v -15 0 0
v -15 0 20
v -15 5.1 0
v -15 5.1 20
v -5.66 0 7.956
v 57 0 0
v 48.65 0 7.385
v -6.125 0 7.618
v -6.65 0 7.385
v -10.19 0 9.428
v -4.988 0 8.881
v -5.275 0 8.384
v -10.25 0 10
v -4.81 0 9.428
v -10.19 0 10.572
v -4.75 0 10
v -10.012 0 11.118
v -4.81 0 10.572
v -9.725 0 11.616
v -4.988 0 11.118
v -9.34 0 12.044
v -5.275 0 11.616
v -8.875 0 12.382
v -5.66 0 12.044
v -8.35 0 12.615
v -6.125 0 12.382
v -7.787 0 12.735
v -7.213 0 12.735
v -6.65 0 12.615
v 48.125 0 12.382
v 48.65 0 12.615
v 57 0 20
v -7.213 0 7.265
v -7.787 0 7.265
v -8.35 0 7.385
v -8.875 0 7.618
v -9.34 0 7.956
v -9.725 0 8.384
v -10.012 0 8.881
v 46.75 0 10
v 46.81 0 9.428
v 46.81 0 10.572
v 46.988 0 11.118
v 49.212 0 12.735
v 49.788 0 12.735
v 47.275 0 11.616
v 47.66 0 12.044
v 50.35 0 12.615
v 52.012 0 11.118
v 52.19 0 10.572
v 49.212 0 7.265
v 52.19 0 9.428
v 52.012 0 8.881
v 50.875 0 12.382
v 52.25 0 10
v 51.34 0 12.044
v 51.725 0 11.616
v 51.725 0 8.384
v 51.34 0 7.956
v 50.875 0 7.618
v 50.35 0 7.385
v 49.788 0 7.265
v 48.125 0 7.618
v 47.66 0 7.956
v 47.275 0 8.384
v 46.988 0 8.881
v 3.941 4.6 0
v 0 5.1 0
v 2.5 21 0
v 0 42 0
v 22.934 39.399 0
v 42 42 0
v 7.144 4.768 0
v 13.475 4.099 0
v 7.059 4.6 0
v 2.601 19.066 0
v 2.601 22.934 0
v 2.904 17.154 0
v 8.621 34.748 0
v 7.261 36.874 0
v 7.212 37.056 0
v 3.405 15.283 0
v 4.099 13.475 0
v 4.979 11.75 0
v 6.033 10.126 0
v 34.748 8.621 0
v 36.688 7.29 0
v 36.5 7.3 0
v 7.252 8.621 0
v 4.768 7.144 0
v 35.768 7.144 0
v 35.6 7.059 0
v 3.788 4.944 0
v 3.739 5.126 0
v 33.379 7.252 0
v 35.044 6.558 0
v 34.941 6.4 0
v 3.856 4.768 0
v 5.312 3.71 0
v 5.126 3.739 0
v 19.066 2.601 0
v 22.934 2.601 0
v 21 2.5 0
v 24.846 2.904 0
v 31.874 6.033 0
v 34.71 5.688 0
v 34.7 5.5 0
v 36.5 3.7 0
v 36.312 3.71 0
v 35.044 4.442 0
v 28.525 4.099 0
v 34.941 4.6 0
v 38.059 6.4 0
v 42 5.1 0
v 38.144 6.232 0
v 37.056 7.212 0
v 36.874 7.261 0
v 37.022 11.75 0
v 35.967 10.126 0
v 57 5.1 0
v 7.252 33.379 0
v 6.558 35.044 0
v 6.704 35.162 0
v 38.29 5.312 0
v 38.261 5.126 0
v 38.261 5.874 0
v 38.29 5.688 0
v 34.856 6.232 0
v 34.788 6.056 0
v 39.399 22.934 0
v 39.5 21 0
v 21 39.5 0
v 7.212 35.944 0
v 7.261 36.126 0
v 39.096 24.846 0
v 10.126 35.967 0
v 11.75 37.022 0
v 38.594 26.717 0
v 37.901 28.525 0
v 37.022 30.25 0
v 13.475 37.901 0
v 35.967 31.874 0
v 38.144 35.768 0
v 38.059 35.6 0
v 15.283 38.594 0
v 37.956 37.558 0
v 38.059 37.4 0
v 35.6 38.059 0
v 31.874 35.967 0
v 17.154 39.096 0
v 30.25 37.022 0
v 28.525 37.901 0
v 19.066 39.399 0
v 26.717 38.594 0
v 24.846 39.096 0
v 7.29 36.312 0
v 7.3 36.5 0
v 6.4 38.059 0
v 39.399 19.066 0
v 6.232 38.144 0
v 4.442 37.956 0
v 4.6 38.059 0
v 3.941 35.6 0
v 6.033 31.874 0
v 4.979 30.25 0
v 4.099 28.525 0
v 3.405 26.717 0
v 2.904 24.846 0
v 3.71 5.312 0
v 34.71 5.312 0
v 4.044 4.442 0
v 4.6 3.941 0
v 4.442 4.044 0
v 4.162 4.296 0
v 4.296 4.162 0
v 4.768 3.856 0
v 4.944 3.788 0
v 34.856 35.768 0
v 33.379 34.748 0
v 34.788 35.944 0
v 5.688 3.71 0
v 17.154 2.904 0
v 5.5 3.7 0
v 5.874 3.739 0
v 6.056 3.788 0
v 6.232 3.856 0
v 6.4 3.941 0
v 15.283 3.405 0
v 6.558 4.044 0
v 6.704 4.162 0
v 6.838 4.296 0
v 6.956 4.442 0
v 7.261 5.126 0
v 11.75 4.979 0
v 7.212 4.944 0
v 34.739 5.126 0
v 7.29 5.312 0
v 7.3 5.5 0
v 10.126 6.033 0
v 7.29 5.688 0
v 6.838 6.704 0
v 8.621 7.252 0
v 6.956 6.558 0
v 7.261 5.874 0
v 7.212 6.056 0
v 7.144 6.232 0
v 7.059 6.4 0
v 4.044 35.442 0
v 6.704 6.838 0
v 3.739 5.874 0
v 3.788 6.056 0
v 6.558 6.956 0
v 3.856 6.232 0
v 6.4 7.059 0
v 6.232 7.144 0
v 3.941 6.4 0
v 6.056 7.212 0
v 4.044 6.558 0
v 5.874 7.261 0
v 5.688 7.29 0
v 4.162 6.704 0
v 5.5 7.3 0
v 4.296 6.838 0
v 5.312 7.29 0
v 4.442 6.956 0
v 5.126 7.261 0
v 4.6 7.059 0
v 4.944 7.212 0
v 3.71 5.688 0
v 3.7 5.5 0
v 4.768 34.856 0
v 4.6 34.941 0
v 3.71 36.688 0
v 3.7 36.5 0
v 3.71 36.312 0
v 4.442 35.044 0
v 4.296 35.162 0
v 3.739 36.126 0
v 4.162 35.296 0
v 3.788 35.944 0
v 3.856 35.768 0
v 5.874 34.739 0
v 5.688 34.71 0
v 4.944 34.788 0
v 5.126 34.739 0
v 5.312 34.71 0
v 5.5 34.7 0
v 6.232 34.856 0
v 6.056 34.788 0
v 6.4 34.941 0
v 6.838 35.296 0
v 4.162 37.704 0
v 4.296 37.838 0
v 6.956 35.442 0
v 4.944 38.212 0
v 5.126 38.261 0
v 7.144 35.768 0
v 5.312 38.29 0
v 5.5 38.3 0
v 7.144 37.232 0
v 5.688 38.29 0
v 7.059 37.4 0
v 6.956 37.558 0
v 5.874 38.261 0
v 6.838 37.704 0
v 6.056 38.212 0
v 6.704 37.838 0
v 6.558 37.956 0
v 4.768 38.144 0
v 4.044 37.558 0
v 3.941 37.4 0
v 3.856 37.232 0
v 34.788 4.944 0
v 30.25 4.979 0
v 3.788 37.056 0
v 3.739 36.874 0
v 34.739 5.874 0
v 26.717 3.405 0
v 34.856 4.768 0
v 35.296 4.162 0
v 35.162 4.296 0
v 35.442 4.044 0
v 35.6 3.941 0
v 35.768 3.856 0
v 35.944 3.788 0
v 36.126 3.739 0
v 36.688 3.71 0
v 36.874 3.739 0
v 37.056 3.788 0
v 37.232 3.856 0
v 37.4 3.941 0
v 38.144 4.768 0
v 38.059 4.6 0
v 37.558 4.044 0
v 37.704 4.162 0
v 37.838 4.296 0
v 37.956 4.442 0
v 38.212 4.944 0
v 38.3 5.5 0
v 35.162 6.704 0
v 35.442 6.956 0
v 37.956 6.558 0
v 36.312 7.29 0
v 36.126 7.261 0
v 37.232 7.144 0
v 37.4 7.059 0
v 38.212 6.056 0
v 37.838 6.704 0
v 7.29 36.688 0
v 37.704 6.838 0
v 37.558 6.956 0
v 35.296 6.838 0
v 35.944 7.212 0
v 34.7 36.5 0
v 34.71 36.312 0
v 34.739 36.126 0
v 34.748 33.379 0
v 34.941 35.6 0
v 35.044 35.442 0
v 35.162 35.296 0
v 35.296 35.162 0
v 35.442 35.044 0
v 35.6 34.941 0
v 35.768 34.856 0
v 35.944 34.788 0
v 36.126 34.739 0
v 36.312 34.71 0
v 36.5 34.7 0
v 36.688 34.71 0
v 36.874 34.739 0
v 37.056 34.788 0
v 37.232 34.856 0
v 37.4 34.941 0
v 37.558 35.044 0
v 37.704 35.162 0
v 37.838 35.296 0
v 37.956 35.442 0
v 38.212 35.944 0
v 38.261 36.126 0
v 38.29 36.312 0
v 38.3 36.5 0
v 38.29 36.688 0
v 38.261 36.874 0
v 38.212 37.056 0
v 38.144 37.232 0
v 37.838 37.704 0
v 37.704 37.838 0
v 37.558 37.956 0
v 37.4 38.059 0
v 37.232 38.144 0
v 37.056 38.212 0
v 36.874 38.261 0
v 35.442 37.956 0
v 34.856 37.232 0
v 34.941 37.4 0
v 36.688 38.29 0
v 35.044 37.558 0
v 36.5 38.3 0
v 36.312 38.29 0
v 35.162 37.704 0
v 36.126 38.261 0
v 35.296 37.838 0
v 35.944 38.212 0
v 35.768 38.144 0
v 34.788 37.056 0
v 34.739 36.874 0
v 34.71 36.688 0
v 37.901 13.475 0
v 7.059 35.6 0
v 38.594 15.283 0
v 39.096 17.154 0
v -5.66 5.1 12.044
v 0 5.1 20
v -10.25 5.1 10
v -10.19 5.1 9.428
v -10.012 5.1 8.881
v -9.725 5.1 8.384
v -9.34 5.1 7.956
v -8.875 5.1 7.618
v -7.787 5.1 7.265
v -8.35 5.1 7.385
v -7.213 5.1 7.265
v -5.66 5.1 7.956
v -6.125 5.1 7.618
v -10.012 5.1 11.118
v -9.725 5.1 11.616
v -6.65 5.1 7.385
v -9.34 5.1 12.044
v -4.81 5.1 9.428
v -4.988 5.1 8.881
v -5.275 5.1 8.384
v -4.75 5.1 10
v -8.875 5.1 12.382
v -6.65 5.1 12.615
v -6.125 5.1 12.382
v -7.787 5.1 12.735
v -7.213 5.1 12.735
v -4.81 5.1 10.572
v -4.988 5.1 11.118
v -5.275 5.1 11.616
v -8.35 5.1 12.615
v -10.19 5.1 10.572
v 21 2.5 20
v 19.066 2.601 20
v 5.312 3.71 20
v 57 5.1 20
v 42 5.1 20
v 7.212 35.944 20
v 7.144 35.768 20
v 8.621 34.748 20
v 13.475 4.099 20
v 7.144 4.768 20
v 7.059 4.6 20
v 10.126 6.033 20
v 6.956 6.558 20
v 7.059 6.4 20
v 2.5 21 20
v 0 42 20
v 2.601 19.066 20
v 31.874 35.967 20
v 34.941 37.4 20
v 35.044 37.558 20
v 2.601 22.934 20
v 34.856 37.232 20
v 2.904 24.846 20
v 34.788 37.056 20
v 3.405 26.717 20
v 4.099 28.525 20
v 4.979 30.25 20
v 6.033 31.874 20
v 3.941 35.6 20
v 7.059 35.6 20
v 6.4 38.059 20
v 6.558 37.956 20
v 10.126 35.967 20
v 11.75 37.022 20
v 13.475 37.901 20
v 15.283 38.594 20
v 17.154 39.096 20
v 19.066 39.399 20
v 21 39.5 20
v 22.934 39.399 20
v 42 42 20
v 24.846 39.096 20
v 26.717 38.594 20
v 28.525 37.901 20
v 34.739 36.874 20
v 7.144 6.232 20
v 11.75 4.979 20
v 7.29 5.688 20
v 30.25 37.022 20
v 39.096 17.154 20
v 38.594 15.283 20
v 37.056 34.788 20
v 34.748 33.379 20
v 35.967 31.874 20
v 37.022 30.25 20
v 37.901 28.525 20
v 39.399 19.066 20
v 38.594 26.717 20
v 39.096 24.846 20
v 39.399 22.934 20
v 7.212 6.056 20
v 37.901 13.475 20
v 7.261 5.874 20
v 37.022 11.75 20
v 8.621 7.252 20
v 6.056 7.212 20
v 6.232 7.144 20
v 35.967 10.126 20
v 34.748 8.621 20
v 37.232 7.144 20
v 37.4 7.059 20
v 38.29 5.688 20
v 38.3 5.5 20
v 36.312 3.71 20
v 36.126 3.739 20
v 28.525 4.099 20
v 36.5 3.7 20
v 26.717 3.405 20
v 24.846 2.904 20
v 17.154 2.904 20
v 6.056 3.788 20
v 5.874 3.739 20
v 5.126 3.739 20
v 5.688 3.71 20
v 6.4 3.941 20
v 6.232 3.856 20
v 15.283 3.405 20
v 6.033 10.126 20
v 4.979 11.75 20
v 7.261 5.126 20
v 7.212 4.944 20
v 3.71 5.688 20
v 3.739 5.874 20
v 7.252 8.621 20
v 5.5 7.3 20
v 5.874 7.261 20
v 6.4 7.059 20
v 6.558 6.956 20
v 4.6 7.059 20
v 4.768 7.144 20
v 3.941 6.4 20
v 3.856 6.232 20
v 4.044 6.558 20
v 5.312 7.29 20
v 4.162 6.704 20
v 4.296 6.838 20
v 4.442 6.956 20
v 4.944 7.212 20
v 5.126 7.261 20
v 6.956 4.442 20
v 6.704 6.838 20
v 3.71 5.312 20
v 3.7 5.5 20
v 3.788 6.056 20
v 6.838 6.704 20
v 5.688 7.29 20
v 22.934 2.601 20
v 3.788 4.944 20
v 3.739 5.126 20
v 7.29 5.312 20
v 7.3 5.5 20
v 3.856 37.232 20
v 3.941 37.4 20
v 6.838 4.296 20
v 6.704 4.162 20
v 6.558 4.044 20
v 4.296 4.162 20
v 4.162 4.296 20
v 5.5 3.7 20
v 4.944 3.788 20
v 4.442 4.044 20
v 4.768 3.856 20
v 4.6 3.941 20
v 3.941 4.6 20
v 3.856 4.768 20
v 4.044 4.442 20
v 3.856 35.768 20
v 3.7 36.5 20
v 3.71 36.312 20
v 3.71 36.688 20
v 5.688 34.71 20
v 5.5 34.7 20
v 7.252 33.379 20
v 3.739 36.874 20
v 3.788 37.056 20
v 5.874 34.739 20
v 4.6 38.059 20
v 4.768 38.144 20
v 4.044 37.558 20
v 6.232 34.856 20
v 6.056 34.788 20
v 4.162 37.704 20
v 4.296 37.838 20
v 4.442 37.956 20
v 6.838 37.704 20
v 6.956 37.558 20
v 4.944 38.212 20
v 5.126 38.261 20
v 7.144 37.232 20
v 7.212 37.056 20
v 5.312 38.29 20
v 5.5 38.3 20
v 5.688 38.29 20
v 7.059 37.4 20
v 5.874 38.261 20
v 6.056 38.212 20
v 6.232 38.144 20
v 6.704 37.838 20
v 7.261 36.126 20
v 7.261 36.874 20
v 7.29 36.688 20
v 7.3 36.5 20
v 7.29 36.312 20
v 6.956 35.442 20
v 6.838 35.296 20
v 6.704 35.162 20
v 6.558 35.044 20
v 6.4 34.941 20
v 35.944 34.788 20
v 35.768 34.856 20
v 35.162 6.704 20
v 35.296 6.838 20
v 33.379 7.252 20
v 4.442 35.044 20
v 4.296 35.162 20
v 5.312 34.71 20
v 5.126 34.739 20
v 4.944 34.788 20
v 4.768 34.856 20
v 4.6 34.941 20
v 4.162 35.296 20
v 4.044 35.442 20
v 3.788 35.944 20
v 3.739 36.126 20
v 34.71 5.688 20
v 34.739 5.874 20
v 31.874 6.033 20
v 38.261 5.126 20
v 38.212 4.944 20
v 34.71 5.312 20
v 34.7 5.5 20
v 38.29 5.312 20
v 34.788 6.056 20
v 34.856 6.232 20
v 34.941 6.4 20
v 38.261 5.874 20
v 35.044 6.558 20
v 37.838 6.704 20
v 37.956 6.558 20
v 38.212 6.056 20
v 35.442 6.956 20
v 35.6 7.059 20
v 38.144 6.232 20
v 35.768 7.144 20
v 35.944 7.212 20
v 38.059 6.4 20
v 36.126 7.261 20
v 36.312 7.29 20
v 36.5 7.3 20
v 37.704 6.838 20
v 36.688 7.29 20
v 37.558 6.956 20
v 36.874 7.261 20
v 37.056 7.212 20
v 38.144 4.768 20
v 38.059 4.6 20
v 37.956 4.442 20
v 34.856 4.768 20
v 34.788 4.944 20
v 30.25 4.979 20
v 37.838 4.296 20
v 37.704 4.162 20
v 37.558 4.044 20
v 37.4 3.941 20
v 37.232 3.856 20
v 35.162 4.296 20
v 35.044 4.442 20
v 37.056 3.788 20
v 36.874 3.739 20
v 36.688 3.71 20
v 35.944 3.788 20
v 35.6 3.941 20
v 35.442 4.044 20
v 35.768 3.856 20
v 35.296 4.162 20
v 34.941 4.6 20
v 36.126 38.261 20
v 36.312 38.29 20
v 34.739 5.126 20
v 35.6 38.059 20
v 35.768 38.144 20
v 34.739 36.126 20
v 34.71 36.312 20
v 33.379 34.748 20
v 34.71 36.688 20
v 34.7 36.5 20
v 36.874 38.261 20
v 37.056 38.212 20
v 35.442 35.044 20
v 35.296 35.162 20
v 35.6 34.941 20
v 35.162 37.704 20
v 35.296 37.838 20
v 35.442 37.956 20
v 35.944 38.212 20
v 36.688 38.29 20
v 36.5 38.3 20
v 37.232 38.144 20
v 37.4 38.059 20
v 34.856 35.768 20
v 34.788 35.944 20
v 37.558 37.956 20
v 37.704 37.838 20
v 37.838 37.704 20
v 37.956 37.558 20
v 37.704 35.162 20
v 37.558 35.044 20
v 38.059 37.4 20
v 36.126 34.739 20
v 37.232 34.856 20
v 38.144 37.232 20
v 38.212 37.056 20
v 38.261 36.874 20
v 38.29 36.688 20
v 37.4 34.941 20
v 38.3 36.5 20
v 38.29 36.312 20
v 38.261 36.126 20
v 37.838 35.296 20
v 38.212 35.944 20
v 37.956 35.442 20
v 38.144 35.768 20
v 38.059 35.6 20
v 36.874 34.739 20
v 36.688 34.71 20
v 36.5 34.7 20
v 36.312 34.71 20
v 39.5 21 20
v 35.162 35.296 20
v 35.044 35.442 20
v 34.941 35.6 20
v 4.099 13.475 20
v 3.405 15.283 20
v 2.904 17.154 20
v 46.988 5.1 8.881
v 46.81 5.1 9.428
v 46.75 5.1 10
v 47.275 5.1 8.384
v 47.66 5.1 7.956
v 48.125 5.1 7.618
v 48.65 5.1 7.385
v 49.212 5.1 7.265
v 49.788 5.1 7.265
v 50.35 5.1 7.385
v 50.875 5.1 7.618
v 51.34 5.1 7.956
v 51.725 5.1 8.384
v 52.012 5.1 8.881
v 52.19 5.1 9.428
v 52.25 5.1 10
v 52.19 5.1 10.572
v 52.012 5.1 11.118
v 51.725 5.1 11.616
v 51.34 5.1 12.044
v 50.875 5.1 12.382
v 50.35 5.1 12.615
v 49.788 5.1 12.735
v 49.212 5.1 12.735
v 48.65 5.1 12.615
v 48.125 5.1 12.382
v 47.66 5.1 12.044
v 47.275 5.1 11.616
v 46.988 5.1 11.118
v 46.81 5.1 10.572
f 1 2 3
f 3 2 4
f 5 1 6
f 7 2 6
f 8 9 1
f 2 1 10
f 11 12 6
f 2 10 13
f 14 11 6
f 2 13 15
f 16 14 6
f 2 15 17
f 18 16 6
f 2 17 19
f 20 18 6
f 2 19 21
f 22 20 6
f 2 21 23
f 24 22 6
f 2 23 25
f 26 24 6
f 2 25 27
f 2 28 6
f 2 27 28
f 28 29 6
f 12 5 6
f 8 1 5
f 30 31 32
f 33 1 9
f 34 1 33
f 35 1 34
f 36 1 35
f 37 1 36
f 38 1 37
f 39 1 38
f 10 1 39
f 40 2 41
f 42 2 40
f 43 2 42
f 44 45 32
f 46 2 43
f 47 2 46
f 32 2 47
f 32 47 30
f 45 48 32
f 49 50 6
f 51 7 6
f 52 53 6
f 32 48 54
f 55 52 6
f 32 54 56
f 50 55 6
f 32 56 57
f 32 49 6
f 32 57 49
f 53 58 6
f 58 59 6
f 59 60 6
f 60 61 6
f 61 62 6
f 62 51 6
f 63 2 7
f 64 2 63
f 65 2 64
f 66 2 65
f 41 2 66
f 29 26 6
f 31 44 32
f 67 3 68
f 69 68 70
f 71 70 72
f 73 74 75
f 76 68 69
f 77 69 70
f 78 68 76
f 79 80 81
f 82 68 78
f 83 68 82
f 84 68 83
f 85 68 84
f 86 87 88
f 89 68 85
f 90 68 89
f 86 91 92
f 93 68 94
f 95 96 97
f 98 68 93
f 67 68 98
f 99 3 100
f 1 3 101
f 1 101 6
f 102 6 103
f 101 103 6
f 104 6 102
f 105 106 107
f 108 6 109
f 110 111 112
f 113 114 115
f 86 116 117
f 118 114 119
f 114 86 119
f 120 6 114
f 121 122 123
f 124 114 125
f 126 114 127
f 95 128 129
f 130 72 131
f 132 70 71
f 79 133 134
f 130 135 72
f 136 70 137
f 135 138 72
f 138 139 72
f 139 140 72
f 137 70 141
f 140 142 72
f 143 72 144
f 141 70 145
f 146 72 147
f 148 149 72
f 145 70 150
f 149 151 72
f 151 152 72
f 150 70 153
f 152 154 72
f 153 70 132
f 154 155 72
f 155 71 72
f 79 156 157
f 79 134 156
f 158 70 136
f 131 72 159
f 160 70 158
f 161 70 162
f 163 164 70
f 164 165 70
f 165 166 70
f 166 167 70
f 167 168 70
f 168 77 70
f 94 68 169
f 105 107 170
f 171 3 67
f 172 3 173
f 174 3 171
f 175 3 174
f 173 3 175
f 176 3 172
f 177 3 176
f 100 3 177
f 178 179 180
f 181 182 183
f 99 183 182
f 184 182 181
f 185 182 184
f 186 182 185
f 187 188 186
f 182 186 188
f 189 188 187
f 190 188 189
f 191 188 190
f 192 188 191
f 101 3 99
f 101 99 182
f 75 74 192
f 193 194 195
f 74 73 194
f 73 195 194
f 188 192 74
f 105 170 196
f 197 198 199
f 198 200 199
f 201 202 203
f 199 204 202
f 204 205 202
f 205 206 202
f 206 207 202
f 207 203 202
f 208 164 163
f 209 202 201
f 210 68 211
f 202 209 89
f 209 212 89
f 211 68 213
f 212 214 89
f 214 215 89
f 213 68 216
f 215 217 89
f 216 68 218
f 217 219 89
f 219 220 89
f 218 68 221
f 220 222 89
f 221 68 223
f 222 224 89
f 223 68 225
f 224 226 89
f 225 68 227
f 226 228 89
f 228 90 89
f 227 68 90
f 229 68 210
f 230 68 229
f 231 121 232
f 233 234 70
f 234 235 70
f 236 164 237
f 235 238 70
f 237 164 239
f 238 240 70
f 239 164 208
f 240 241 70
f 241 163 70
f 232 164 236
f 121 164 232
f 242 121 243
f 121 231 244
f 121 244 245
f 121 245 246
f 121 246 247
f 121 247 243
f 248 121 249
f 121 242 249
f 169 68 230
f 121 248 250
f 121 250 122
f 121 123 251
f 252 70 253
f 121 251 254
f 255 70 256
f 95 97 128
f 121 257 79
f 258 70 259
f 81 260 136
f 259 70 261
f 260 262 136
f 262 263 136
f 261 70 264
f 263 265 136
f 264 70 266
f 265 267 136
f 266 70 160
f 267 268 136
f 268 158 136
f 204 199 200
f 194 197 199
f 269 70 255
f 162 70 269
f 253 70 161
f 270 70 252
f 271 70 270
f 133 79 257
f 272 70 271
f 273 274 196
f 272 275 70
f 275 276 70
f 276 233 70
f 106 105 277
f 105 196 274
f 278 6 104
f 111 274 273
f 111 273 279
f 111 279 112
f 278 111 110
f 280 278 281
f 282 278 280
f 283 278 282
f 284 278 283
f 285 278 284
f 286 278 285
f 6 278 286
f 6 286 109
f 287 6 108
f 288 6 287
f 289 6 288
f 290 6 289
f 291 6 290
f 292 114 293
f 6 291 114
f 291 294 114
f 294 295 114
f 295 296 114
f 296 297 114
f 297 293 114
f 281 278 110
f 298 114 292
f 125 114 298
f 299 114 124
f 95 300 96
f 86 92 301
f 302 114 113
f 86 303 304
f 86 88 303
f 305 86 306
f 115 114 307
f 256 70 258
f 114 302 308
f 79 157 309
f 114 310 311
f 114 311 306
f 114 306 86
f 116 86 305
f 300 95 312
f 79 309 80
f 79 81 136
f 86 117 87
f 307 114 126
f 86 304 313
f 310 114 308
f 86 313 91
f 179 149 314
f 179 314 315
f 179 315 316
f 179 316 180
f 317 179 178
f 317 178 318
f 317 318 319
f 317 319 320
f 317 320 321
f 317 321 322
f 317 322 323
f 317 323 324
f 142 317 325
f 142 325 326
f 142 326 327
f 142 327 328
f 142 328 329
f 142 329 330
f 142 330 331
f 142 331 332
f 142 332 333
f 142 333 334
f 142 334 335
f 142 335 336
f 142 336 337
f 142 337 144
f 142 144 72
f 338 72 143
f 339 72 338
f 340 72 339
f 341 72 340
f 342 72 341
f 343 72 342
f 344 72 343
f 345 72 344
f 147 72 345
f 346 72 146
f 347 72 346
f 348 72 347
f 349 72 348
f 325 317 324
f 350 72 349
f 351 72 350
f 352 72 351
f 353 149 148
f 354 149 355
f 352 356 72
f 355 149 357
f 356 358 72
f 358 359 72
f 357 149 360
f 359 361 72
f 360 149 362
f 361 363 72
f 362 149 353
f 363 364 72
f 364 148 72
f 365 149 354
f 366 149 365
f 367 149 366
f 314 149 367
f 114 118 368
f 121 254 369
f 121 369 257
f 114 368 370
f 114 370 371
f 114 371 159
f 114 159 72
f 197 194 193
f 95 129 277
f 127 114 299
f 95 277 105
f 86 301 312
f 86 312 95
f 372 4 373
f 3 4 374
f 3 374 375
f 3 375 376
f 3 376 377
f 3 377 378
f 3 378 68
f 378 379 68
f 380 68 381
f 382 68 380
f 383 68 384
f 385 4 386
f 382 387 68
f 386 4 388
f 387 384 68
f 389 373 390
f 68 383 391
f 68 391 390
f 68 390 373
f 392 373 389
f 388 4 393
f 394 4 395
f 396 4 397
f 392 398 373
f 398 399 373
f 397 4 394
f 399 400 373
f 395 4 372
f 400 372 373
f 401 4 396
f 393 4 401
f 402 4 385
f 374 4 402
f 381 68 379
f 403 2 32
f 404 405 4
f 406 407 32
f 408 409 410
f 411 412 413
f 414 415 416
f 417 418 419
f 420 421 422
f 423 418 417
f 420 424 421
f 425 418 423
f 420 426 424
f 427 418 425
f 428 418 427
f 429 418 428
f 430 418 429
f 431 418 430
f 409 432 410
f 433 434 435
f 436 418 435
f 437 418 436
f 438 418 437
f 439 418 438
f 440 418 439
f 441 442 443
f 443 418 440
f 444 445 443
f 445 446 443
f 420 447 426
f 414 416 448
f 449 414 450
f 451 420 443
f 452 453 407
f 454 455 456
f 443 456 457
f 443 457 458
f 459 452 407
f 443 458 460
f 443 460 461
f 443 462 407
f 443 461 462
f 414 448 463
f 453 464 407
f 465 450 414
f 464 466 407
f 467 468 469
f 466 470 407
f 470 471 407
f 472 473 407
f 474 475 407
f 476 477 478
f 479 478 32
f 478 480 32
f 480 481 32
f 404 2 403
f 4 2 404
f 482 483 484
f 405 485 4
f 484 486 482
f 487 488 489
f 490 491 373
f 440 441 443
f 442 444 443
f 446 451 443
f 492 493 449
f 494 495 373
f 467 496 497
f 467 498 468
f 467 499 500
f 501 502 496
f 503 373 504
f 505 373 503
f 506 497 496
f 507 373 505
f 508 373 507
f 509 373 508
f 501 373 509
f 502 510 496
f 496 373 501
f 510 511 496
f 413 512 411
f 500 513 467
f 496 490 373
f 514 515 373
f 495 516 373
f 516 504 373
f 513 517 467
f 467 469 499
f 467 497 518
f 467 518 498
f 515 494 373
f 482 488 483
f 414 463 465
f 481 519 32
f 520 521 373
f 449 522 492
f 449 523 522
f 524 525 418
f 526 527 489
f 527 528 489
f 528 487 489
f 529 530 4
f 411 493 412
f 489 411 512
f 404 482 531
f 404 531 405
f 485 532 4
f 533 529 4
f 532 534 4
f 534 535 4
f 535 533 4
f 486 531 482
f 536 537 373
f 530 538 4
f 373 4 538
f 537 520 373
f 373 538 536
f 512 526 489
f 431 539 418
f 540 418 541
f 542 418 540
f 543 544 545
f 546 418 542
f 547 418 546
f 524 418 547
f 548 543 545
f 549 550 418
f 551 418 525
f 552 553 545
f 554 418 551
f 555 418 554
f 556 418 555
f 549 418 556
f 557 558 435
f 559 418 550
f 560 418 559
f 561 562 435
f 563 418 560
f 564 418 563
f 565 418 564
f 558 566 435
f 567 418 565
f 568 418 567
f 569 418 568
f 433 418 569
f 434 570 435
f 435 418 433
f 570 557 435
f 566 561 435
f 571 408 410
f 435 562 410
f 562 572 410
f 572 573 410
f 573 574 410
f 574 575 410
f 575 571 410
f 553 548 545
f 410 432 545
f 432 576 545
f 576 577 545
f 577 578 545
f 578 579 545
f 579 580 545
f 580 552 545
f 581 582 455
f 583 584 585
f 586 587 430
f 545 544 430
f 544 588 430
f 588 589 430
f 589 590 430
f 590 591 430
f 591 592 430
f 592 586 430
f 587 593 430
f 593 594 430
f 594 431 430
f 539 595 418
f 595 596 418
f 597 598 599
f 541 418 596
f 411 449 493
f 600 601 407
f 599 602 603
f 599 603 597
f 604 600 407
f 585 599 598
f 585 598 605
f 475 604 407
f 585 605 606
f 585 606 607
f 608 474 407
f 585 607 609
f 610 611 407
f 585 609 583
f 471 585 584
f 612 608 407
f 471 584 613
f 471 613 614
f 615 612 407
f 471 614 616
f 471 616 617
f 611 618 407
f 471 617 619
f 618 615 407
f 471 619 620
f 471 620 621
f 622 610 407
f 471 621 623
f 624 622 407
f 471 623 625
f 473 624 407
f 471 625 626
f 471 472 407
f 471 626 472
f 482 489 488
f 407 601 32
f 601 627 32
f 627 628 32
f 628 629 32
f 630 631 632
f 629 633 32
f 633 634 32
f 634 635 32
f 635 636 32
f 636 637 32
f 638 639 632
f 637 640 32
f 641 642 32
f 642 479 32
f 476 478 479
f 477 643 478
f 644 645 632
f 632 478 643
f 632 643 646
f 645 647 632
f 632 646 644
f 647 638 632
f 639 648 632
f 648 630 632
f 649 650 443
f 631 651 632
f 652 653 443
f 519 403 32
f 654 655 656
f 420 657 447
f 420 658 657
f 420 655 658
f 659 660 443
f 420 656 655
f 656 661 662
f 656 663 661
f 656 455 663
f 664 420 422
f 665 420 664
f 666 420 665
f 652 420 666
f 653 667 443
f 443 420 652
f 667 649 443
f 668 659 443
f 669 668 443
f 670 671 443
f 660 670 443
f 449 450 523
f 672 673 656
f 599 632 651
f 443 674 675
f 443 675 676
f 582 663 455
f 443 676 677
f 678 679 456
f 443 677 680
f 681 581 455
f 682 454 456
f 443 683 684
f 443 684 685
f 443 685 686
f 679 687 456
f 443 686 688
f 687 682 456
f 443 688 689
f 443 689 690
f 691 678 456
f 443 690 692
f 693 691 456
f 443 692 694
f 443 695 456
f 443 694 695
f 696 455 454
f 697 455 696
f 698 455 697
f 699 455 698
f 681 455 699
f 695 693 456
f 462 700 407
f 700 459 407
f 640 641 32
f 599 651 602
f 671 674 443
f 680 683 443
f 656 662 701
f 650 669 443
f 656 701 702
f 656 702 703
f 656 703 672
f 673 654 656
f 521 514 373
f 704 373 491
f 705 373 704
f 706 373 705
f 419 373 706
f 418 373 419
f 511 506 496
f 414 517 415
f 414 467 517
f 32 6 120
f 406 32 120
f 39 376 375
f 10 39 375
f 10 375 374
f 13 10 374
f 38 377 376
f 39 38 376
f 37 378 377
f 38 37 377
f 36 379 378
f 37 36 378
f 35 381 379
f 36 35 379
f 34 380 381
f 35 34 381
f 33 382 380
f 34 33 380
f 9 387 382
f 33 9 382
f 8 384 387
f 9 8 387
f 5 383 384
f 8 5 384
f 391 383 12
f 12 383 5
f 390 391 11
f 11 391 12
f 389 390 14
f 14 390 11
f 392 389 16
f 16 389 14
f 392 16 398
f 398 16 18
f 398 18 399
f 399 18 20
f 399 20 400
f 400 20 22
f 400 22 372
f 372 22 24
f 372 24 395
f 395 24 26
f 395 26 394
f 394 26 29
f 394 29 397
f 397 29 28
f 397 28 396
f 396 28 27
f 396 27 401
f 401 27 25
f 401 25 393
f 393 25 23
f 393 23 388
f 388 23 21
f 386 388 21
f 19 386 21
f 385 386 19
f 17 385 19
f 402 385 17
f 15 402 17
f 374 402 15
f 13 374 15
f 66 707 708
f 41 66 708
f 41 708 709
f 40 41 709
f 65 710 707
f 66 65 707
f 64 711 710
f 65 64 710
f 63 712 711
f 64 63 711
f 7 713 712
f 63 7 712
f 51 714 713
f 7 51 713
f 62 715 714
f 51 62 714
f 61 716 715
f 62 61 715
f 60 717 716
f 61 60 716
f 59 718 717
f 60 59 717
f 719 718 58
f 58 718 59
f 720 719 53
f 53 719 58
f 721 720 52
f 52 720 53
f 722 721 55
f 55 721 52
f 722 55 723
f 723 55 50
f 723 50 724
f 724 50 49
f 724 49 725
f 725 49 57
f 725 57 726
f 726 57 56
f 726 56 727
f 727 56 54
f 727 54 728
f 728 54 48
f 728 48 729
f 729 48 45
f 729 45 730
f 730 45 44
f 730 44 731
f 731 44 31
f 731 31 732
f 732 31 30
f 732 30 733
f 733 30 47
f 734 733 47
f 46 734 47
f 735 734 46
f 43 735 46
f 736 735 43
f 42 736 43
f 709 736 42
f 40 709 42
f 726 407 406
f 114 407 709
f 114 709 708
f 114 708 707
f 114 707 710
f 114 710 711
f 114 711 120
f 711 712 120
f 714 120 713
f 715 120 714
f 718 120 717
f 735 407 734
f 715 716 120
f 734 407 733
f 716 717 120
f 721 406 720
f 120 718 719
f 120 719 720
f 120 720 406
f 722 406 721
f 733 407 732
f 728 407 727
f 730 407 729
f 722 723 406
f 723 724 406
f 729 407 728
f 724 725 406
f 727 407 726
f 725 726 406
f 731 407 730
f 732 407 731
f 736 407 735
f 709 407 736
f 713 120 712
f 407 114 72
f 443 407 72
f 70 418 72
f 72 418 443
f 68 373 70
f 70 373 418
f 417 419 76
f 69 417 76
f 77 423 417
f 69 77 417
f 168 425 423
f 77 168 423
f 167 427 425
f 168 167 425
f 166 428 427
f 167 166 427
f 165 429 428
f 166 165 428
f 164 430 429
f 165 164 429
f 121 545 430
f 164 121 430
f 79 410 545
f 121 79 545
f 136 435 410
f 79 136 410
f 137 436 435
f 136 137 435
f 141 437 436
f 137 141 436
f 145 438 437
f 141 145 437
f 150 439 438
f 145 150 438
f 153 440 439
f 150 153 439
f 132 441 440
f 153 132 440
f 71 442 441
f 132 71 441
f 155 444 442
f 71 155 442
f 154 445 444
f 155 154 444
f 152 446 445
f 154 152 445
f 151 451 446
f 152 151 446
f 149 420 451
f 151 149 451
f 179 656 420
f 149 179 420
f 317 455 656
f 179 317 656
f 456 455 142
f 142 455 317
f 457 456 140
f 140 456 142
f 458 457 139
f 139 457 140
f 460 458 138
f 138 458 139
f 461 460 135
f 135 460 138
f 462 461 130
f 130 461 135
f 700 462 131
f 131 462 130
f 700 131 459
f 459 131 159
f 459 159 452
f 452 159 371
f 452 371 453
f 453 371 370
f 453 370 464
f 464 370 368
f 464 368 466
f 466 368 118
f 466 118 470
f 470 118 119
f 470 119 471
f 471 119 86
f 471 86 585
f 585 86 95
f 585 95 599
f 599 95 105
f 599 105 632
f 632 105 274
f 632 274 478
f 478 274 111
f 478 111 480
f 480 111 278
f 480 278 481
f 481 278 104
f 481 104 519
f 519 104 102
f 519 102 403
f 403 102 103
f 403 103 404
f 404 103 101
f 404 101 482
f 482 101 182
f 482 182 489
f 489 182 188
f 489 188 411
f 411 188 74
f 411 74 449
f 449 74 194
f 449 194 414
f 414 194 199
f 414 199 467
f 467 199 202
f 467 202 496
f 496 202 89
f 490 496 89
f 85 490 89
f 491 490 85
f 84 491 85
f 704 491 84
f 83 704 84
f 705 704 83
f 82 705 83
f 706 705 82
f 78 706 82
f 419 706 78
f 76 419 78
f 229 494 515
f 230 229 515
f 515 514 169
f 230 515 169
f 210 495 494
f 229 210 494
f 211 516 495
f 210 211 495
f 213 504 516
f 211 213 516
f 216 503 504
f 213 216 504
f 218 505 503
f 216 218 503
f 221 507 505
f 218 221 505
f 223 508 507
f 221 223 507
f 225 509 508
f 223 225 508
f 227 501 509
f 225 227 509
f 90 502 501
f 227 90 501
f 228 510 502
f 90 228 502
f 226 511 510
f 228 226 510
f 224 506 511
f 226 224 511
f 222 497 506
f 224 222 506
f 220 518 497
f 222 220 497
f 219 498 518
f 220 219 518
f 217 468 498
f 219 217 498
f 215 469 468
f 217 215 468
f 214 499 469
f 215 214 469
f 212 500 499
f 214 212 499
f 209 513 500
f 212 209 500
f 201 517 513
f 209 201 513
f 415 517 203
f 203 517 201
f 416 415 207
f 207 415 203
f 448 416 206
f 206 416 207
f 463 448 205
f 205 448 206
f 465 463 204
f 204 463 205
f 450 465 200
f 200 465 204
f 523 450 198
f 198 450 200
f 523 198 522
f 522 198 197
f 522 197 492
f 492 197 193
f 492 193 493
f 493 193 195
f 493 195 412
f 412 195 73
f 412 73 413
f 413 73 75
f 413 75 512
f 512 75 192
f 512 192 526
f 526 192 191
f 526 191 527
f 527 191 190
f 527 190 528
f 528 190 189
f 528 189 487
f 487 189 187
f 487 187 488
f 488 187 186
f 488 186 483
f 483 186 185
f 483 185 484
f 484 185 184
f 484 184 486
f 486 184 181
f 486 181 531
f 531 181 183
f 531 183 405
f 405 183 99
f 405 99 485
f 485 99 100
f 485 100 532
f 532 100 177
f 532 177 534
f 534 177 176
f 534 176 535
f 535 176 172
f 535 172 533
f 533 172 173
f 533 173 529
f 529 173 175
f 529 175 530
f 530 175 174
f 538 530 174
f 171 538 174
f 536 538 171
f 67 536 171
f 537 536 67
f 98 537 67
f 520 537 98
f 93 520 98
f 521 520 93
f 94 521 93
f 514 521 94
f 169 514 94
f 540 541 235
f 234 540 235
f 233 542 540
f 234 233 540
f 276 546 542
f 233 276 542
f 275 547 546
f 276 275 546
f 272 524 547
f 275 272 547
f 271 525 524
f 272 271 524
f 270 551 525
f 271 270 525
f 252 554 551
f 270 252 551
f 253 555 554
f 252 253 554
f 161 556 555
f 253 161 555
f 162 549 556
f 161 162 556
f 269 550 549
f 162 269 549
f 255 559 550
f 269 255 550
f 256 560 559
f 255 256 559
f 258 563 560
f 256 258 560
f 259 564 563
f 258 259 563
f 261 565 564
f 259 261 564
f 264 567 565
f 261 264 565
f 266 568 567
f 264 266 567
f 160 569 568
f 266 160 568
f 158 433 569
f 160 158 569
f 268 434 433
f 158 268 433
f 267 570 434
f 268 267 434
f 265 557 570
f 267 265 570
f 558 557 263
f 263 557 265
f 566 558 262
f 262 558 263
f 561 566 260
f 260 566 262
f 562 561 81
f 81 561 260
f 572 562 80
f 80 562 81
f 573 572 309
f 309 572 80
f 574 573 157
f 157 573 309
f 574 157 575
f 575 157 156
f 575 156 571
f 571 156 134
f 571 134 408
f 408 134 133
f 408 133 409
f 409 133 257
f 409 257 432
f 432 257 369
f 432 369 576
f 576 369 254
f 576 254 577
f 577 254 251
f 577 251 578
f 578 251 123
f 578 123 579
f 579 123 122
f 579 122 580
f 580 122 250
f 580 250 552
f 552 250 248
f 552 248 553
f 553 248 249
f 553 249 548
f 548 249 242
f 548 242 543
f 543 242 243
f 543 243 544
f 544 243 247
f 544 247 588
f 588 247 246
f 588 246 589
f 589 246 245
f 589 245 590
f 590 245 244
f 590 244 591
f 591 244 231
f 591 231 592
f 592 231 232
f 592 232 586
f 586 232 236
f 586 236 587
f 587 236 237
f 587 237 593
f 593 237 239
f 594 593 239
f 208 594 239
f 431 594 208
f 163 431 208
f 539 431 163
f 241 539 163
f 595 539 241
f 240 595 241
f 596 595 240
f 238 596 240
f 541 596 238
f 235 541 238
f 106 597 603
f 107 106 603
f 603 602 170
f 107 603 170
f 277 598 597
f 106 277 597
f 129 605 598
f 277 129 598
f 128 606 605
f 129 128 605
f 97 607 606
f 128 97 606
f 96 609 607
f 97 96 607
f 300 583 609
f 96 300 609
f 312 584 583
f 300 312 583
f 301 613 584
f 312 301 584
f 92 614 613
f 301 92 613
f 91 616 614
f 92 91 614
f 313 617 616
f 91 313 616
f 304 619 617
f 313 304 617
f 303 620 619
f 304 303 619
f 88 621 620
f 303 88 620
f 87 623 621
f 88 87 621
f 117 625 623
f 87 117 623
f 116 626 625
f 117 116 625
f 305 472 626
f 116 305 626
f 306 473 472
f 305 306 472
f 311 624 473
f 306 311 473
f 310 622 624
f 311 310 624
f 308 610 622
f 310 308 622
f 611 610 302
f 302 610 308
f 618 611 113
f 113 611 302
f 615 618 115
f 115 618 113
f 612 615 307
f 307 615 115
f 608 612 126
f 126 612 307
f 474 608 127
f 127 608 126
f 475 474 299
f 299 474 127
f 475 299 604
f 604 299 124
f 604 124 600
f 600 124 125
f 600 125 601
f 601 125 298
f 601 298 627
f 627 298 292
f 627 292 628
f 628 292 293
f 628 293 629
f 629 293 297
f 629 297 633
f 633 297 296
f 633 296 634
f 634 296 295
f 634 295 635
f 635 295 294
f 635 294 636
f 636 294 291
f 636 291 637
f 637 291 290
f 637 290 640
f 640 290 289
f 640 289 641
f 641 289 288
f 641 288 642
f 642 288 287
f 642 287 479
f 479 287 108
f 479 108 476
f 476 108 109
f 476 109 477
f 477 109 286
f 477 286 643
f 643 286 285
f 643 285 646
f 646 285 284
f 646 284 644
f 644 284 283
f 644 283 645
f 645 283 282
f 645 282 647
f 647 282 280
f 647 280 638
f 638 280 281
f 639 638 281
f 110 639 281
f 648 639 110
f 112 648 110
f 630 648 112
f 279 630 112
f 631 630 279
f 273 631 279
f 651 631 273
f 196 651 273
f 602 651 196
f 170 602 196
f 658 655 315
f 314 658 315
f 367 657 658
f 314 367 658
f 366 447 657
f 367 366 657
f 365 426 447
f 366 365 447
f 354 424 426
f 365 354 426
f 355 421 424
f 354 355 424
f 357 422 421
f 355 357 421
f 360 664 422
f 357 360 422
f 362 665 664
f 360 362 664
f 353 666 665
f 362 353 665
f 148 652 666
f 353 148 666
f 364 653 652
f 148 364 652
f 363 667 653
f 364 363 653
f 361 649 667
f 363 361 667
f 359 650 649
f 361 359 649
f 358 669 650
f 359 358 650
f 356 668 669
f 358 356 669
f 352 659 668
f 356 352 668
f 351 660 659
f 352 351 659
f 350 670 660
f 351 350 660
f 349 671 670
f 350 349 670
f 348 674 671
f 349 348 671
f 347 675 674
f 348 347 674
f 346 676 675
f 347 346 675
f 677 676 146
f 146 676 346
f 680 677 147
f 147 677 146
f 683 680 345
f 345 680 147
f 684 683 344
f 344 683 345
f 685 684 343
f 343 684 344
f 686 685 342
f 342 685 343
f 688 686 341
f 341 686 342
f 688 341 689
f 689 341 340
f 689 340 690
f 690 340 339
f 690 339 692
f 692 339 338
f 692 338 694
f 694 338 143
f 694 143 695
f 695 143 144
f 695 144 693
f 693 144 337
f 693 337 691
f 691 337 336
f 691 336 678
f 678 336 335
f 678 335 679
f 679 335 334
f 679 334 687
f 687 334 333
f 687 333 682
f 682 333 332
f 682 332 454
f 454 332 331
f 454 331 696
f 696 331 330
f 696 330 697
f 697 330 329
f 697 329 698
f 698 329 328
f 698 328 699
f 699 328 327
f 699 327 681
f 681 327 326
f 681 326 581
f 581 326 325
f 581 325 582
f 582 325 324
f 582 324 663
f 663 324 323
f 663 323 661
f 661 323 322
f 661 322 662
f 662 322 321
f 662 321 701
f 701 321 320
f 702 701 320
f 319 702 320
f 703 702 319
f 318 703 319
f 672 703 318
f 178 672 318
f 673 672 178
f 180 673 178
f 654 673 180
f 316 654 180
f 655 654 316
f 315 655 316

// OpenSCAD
// file: library.scad
//rounded cube Functions from: http://www.thingiverse.com/thing:38069


module cube_fillet(size,radius=-1,vertical,top,bottom,center=false,$fn=0){
    if (center) {
        cube_fillet_inside(size, radius, vertical, top, bottom, $fn=$fn);
    } else {
        translate([size[0]/2, size[1]/2, size[2]/2])
            cube_fillet_inside(size, radius, vertical, top, bottom, $fn=$fn);
    }
}
module fillet(radius, height=100, $fn=60) {  
    //this creates negative of fillet,
    //i.e. thing to be substracted from object
    translate([-radius, -radius, -height/2-0.01])
        difference() {
            cube([radius*2, radius*2, height+0.02]);
            cylinder(r=radius, h=height+0.02, $fn=$fn);
        }
}

module cube_negative_fillet(size,radius=-1,vertical, top,bottom,$fn=0){
    j=[1,0,1,0];

    for (i=[0:3]) {
        if (radius > -1) {
            rotate([0, 0, 90*i])
                translate([size[1-j[i]]/2, size[j[i]]/2, 0])
                    fillet(radius, size[2], $fn=$fn);
        } else {
            rotate([0, 0, 90*i])
                translate([size[1-j[i]]/2, size[j[i]]/2, 0])
                    fillet(vertical[i], size[2], $fn=$fn);

        }
        rotate([90*i, -90, 0])
            translate([size[2]/2, size[j[i]]/2, 0 ])
                fillet(top[i], size[1-j[i]], $fn=$fn);
        rotate([90*(4-i), 90, 0])
            translate([size[2]/2, size[j[i]]/2, 0])
                fillet(bottom[i], size[1-j[i]], $fn=$fn);
    }
}

module cube_fillet_inside(size,radius=-1,vertical,top,bottom,$fn=0){

    if (radius == 0) {
        cube(size, center=true);
    } else {
        difference() {
            cube(size, center=true);
            cube_negative_fillet(size, radius, vertical, top, bottom, $fn=$fn);
        }
    }
}
// file: dimensions.scad
// Dimensions
// Author: sdavi


LM8UU = [8, 15, 24];//rod diameter,outter diameter, length
LM12UU = [12, 21, 30];
LM12LUU = [12, 21, 57];
LM12UUx2 = [LM12UU[0], LM12UU[1], LM12UU[2]*2];

BEARING_624 = [4,13,5]; //inner diameter(hole), outter diameter, thickness (http://reprap.org/wiki/Ball_bearing)
BEARING_2x624 = [4, 13, 10]; // 2 624 bearings together, good size for GT2

BEARING_6300 = [10,35,11]; //inner diameter, outer diameter, thickness

vslot_wheel = [23.89,10.23];	//23.89 & 10.23
vslot_wheel_hole = 5+0.5;
vslot_wheel_eccentric = 7.2+0.5; //hole for eccentric spacer
vslot_wheel_spacer_length = 6.35;


t_nut_length = 15+1; //hole in center 1mm cleanance incase hole isnt actually center




GT2_belt_width = 6;
GT2_belt_pitch = 2;
GT2_belt_thickness = 1.38;
GT2_belt_tooth_height = 0.75;  
GT2_belt_tooth_ratio = 0.5;



GT2_pulley_geared_diameter=12.2;//measured from top of tooth to top of tooth opp side// 12.2 is for the 20 tooth pulley

//from metric (prusa i3)
m4_diameter = 4.6;
m4_nut_diameter = 7.6;
m4_nut_diameter_horizontal = 8.15;

m3_diameter = 3.6;
m3_nut_diameter = 5.3;
m3_nut_diameter_horizontal = 6.8;
m3_washer_diameter = 6.9;
//end i3 variables

m5_diameter = 5.5;

//Hex Head M3x30: Head 5.5mm flat to flat, 2.12mm thick
m3_hex_head_diameter = 5.5*2/sqrt(3) + 0.2;

M4 = m4_diameter;
M3 = m3_diameter;
M5 = m5_diameter;
m4_washer_thickness = 0.8; //flat and penny washers
m4_washer_diameter = 9.6;

nema17_holes = 31;// mm between screws
nema17_width = 42; //width
nema17_height = 48;
// file: configuration.scad
// Configuration
// Author: sdavi


include <dimensions.scad>
use <library.scad>


x_rod_distance = 45;

y_bearing = LM8UU;
x_bearing = LM8UU;
//z_bearing = LM12UUx2;
z_bearing = LM12LUU;
belt_bearing = BEARING_2x624;


end_belt_bearing_distance = 25;// distance between 2 bearings on y-ends
belt_clearance = 9.5; //space for belts
x_belt_clearance = 5; //spacing between x-axis vslot and belt

frame_screw = M5; //m5 screws for v/tslot

// calculated vars


//y bearing block
y_bearing_block_length = 2*y_bearing[2] + M3*2 + 5;
//y_bearing_block_width = y_bearing[1]+5;
y_bearing_block_width = 20; //vslot frame width

y_bearing_block_height = 6+y_bearing[1]/2;

//xy_bearing_distance = y_bearing_block_width/2+belt_clearance+belt_bearing[1]/2; //distance between center of y-bearing to center of x-belt bearing 
xy_bearing_distance = vslot_wheel[1]/2+vslot_wheel_spacer_length+belt_clearance+belt_bearing[1]/2; //distance between center of v_slot to center of x-belt bearing 




//min height for belt bearings
min_beltbearing_height = max(((belt_bearing[2]+m4_washer_thickness*2) * 2), y_bearing_block_height);
// main file
//Bulldog Mount
//Author: sdavi

//based on tjb1's Bulldog XL Extruder Mount : http://www.thingiverse.com/thing:301490

include <configuration.scad>


height = 20;
center_hole = 36.5+0.5;

difference(){
	union(){
		cube([nema17_width, nema17_width, height]);
		translate([-15,0,0])cube([nema17_width+30, 5.1, height]);
	}

	translate([nema17_width/2, nema17_width/2, -0.1]){

		//center hole
		cylinder(d=center_hole, h=height+0.2, $fn=60);

		//nema holes
		translate([nema17_holes/2, nema17_holes/2, 0])
			cylinder(d=M3, h=height+0.2, $fn=60);
		translate([-nema17_holes/2, nema17_holes/2, 0])
			cylinder(d=M3, h=height+0.2, $fn=60);
		translate([-nema17_holes/2, -nema17_holes/2, 0])
			cylinder(d=M3, h=height+0.2, $fn=60);
		translate([nema17_holes/2, -nema17_holes/2, 0])
			cylinder(d=M3, h=height+0.2, $fn=60);

	}

	//mount to frame screwns
	translate([-15/2, -0.1, height/2])rotate([-90,0,0])
		cylinder(d=frame_screw, h=10, $fn=30 );
	translate([nema17_width+15/2, -0.1, height/2])rotate([-90,0,0])
		cylinder(d=frame_screw, h=10, $fn=30 );

}
